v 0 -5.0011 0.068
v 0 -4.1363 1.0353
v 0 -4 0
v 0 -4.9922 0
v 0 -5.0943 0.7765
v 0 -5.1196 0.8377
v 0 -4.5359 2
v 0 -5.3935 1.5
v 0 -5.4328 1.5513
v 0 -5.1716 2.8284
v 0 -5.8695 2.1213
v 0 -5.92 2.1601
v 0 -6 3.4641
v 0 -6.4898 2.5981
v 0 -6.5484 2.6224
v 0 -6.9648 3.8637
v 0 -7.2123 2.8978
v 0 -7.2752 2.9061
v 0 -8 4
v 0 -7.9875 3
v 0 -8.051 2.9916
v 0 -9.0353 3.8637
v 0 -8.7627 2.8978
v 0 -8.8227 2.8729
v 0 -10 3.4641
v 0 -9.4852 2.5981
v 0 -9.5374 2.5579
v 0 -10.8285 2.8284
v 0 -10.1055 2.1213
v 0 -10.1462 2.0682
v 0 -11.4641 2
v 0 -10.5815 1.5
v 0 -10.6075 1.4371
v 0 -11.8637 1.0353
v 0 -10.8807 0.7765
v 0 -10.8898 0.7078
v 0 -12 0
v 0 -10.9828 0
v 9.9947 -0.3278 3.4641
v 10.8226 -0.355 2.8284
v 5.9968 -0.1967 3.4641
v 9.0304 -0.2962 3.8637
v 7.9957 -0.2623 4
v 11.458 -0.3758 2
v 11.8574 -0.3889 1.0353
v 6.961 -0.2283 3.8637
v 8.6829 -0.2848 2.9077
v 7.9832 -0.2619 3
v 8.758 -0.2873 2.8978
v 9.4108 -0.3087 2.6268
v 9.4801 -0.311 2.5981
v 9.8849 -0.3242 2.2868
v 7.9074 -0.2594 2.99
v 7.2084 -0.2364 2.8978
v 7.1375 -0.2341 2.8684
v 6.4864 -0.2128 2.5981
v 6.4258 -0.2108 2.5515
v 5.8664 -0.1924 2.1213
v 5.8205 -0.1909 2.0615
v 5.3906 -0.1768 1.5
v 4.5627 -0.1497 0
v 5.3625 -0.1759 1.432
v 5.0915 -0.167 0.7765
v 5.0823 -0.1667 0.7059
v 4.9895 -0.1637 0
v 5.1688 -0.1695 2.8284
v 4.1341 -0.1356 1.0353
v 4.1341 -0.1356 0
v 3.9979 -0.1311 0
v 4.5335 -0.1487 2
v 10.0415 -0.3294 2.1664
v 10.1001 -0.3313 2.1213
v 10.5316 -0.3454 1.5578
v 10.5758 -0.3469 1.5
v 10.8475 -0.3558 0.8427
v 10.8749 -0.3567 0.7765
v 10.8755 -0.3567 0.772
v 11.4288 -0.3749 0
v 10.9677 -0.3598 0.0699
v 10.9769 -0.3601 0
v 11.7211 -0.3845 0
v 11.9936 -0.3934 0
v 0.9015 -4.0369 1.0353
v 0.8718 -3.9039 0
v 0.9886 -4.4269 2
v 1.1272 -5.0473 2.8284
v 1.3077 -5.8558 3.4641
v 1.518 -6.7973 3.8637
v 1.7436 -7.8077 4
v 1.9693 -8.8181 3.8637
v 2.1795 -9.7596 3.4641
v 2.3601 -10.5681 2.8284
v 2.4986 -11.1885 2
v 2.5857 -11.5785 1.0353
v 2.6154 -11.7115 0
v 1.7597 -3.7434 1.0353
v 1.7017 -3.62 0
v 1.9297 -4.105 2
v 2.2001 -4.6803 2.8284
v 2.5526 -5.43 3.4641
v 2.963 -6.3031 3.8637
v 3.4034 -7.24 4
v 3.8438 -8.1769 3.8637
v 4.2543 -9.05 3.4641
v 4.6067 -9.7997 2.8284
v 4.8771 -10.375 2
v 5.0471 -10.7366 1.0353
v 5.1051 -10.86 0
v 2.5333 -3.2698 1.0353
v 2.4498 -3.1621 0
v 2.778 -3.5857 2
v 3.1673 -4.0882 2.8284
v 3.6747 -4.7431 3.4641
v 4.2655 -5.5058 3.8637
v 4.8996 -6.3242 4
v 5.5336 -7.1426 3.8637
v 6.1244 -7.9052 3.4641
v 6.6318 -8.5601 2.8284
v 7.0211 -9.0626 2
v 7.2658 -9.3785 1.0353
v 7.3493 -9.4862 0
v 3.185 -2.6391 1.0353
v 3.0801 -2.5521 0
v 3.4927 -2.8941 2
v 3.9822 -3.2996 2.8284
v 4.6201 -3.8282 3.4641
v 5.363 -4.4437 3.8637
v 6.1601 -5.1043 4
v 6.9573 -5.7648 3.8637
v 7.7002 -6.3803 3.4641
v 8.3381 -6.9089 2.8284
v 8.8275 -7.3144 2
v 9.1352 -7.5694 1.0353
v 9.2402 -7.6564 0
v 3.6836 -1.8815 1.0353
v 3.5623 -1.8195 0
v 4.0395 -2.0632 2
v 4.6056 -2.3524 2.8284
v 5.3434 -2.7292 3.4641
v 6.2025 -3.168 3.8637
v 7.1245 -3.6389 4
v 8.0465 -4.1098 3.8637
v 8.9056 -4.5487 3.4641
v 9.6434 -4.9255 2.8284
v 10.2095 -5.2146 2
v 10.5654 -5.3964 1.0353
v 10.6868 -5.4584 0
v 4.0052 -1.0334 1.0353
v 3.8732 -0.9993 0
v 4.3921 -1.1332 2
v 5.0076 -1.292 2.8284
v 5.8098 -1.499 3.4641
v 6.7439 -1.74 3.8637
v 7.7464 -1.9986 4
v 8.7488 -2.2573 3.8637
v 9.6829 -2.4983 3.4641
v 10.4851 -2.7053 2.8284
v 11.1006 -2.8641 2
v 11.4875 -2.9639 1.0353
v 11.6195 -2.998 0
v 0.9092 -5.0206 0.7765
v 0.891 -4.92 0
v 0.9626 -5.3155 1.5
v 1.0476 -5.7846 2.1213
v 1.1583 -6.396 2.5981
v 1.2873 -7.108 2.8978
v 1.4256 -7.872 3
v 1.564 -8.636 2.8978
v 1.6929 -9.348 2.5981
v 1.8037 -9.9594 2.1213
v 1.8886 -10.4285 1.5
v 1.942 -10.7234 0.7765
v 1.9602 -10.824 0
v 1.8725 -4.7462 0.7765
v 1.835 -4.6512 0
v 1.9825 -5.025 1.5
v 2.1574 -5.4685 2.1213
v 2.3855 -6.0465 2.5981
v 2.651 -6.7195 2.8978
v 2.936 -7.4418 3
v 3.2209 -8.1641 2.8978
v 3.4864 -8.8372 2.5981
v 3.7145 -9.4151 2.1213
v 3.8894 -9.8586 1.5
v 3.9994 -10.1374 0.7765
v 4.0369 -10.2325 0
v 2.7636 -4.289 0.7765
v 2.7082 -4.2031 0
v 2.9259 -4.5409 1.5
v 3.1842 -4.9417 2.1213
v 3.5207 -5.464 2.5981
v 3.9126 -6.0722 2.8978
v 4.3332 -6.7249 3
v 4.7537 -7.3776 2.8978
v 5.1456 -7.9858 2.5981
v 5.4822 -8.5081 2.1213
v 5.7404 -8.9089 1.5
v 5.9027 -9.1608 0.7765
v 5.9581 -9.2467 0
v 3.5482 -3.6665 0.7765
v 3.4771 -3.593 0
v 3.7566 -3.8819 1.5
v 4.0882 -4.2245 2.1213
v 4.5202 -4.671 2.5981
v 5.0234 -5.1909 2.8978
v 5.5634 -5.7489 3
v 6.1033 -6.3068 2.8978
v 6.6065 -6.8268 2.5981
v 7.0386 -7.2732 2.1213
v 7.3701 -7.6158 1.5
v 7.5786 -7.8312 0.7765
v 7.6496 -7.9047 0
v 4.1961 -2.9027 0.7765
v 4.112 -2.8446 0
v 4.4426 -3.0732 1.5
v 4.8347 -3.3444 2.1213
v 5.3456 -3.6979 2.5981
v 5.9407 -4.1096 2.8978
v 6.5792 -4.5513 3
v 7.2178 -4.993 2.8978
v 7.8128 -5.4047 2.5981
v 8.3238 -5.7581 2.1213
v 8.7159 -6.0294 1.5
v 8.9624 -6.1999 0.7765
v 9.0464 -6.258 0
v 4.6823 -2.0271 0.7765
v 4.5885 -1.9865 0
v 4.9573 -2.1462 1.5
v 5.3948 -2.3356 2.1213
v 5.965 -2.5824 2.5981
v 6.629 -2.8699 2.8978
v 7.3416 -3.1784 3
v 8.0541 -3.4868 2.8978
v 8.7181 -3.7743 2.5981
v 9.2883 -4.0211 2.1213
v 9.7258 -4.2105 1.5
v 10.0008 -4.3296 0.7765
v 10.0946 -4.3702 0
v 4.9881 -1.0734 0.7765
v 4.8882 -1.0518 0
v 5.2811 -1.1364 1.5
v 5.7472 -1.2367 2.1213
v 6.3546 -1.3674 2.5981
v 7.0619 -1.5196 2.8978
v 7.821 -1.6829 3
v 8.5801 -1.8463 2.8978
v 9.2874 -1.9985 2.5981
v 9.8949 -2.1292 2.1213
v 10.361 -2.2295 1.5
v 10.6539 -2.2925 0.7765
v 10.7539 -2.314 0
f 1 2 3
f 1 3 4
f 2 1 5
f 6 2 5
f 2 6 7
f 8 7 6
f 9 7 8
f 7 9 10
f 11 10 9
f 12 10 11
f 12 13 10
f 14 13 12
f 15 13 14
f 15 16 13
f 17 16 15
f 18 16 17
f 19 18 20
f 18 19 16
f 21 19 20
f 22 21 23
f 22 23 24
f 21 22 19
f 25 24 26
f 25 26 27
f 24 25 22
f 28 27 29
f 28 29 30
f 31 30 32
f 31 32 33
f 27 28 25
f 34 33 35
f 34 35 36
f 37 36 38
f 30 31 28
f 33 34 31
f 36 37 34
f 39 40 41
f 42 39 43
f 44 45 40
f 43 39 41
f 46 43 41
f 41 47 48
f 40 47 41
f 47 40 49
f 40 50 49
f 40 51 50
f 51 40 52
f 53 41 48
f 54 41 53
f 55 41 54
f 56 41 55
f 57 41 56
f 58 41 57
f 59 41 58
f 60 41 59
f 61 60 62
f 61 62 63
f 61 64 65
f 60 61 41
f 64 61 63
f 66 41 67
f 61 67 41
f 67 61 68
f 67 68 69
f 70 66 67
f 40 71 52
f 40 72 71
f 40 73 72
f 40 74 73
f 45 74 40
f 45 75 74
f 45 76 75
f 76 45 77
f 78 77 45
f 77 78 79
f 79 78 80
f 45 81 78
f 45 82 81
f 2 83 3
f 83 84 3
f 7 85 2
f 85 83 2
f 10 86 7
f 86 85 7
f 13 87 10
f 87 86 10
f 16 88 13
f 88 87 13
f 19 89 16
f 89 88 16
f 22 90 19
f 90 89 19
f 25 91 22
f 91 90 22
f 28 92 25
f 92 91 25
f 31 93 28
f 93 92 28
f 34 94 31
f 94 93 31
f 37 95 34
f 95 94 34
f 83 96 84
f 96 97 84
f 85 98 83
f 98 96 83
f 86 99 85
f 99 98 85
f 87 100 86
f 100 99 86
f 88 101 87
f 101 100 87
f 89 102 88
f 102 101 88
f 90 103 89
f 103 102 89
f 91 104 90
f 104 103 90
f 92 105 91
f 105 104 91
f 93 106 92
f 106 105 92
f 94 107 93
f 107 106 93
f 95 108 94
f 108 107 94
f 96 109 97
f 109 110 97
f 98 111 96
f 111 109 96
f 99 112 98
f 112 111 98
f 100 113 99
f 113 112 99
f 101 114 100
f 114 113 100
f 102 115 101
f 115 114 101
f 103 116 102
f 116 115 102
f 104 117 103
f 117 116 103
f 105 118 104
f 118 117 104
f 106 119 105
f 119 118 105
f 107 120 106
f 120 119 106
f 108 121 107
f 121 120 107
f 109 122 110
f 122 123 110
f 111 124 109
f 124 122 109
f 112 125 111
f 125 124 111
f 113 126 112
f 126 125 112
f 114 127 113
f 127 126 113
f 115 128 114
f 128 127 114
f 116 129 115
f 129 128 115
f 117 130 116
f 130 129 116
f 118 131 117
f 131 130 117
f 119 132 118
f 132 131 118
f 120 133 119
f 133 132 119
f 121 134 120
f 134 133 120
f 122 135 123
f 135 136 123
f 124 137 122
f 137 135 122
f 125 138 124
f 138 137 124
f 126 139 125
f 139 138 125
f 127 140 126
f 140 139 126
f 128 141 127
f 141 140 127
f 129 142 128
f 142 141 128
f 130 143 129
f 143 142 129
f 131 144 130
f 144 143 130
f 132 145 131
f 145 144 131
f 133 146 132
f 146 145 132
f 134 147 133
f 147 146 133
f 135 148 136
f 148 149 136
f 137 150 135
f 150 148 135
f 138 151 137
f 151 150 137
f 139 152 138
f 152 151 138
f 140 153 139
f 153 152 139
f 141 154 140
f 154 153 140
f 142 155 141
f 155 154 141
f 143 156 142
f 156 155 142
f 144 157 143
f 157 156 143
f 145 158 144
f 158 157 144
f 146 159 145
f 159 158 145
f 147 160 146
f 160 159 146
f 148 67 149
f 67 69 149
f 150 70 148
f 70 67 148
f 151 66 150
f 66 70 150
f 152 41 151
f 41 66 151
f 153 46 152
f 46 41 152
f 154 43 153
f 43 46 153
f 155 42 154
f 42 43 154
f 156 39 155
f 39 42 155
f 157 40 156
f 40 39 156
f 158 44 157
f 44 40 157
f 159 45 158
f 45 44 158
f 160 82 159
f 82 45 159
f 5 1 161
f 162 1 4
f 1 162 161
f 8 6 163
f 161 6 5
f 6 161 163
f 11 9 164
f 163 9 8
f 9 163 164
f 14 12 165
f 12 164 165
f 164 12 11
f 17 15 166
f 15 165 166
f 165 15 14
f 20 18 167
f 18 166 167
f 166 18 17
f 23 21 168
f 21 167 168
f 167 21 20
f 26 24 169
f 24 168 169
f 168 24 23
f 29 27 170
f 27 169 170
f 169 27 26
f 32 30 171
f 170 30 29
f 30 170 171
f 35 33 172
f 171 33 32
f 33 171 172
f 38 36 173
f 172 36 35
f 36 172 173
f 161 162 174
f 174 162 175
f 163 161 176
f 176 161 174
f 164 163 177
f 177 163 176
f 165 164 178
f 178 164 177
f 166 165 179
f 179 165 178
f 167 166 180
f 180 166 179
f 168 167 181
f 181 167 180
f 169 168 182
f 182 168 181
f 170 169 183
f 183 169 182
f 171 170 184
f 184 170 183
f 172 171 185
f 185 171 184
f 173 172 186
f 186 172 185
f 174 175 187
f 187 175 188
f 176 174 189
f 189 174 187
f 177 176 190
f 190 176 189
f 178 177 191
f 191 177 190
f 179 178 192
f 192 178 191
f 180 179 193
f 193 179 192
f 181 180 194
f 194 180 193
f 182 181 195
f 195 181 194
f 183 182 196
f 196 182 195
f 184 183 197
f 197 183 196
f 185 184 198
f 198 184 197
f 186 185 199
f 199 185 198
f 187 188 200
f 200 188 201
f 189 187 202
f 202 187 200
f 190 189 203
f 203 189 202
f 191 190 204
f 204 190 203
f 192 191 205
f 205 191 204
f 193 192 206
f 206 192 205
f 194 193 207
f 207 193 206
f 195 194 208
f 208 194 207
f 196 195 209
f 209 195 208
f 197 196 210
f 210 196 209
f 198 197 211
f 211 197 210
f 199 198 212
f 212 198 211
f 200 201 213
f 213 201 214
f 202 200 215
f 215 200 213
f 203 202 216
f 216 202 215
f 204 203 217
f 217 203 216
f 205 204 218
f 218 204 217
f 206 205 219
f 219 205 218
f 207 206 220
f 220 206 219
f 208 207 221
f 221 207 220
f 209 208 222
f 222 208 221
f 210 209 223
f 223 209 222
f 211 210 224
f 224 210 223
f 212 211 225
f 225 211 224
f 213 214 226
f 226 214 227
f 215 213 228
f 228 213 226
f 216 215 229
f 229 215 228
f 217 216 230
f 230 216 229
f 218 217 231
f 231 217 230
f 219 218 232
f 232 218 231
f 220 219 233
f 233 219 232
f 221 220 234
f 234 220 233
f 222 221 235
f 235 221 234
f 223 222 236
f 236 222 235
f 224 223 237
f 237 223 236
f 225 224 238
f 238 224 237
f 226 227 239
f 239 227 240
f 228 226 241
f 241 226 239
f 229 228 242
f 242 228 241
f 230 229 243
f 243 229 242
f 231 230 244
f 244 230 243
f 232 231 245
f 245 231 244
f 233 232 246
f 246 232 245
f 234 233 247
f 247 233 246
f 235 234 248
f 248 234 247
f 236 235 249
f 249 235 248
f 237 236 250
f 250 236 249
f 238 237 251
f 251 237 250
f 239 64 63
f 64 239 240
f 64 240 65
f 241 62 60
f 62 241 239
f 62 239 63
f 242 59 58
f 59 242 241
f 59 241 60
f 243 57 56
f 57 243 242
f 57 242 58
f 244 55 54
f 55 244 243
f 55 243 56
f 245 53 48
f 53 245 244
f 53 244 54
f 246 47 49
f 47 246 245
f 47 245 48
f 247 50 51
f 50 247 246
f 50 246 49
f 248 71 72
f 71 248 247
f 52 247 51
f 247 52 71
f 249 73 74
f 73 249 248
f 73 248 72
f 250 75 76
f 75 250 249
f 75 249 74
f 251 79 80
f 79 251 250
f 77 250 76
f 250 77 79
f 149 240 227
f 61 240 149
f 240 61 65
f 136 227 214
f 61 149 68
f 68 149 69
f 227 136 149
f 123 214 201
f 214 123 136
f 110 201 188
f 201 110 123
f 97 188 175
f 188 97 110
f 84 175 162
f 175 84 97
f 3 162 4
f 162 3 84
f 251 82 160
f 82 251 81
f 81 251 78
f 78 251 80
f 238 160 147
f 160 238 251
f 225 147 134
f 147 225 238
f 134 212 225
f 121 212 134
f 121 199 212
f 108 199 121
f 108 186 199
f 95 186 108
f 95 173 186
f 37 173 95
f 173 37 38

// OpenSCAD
// file: ../build_environments.scad
// build_environments.scad: modules to build level sections
//

module pool(diameter=10.0, wall_height=2.0, step_width=3.0, connections=[])
{
    difference() {
        union() {
        difference() {
            cylinder(h=0.5,r1=diameter+step_width,r2=diameter+step_width,$fn=48);
            translate([0,0,-0.1])
                cylinder(h=0.7,r1=diameter,r2=diameter,$fn=48);
        }
        difference() {
            cylinder(h=wall_height,r1=diameter+step_width+1.0,r2=diameter+step_width+1.0,$fn=48);
            translate([0,0,-0.1])
                cylinder(h=wall_height+0.2,r1=diameter+step_width,r2=diameter+step_width,$fn=48);
        }
        }
    
        for (c = connections)
        {
            rotate([0,90,0]) {
                angle = atan2(c[1],c[0]);
                rotate([-angle,0,0]) {
                    cylinder(h=diameter+5.0,r1=c[2],r2=c[2],$fn=48);
                }
            }
        }
    }
}

module straight(length=10.0, width=2.0, dy1=0.0, dy2=0.0, dz=0.0)
{
    dims = [0, 0, 0, 0, 0, (dz/length)];
    matrix = [
        [ 1, dims[0], dims[1], 0 ],
        [ dims[2], 1, dims[4], 0 ],
        [ dims[5], dims[3], 1, 0 ],
        [ 0, 0, 0, 1 ]
    ];
    multmatrix(matrix)
    difference() {
        translate([dy1,0,0])
        union() {
            rotate([0,90,0]) {
                difference() {
                    cylinder(h=(length-dy1-dy2),r1=width+1.0,r2=width+1.0,$fn=24);
                    translate([0,0,-0.1])
                        cylinder(h=(length-dy1-dy2+0.2),r1=width,r2=width,$fn=24);
                }
                difference() {
                    cylinder(h=1.0,r1=width+2.0,r2=width+2.0,$fn=24);
                    translate([0,0,-0.1])
                        cylinder(h=1.2,r1=width,r2=width,$fn=24);
                }
                translate([0,0,(length-dy1-dy2)-1.0]) {
                    difference() {
                        cylinder(h=1.0,r1=width+2.0,r2=width+2.0,$fn=24);
                        translate([0,0,-0.1])
                            cylinder(h=1.2,r1=width,r2=width,$fn=24);
                    }
                }
            }
        }
        translate([0,0,-(2*width+4.0)/2])
            cube([3*length,3*length,2*width+4.0],center=true);
    }
}

module curve(p0=[0,0], center=[0,0], dir=1, angle=0.0, width=2.0)
{
    radius = sqrt((p0[0]-center[0])*(p0[0]-center[0]) + (p0[1]-center[1])*(p0[1]-center[1]));
    if (dir == 0) {
        difference() {
            rotate([0,0,-90])
            difference() {
                rotate_extrude(angle = angle, convexity = 10, $fn=32)
                    translate([radius, 0, 0])
                        circle(r = width+1.0,$fn=24);
                rotate([0,0,-1.0])
                    rotate_extrude(angle = angle+2.0, convexity = 10, $fn=32)
                        translate([radius, 0, 0])
                            circle(r = width,$fn=24);
            }
            translate([0,0,-(2*width+4.0)/2])
                cube([5*radius,5*radius,2*width+4.0],center=true);
        }
    }
    else {
        difference() {
            rotate([0,0,90])
            difference() {
                rotate_extrude(angle = -angle, convexity = 10, $fn=32)
                    translate([radius, 0, 0])
                        circle(r = width+1.0,$fn=24);
                rotate([0,0,1.0])
                    rotate_extrude(angle = -angle-2.0, convexity = 10, $fn=32)
                        translate([radius, 0, 0])
                            circle(r = width,$fn=24);
            }
            translate([0,0,-(2*width+4.0)/2])
                cube([5*radius,5*radius,2*width+4.0],center=true);
        }
    }

}

// test pool
//pool(diameter=12.0000, wall_height=3.0000, step_width=3.0000, connections=[[0.0000,-26.0000,2.0000], [23.6074,0.0000,2.0000]]);

// test straight, slope
//straight(length=26.0000, width=2.0000, dy1=11.8322, dy2=6.7082, dz=0.0000);
//straight(length=29.1549, width=12.0000, dy1=0.0000, dy2=0.0000, dz=-15.0000);

// test curve
//curve(p0=[23.6074, 0.0000], center=[23.6074, 5.0000], dir=0, angle=60.1011, width=2.0000);
//curve(p0=[33.6426, 12.4219], center=[37.9771, 9.9295], dir=1, angle=120.4627, width=2.0000);
// main file
use <../build_environments.scad>;
curve(p0=[-29.4614, 31.1000], center=[-28.6925, 39.0630], dir=0, angle=88.1213, width=3.0000);
